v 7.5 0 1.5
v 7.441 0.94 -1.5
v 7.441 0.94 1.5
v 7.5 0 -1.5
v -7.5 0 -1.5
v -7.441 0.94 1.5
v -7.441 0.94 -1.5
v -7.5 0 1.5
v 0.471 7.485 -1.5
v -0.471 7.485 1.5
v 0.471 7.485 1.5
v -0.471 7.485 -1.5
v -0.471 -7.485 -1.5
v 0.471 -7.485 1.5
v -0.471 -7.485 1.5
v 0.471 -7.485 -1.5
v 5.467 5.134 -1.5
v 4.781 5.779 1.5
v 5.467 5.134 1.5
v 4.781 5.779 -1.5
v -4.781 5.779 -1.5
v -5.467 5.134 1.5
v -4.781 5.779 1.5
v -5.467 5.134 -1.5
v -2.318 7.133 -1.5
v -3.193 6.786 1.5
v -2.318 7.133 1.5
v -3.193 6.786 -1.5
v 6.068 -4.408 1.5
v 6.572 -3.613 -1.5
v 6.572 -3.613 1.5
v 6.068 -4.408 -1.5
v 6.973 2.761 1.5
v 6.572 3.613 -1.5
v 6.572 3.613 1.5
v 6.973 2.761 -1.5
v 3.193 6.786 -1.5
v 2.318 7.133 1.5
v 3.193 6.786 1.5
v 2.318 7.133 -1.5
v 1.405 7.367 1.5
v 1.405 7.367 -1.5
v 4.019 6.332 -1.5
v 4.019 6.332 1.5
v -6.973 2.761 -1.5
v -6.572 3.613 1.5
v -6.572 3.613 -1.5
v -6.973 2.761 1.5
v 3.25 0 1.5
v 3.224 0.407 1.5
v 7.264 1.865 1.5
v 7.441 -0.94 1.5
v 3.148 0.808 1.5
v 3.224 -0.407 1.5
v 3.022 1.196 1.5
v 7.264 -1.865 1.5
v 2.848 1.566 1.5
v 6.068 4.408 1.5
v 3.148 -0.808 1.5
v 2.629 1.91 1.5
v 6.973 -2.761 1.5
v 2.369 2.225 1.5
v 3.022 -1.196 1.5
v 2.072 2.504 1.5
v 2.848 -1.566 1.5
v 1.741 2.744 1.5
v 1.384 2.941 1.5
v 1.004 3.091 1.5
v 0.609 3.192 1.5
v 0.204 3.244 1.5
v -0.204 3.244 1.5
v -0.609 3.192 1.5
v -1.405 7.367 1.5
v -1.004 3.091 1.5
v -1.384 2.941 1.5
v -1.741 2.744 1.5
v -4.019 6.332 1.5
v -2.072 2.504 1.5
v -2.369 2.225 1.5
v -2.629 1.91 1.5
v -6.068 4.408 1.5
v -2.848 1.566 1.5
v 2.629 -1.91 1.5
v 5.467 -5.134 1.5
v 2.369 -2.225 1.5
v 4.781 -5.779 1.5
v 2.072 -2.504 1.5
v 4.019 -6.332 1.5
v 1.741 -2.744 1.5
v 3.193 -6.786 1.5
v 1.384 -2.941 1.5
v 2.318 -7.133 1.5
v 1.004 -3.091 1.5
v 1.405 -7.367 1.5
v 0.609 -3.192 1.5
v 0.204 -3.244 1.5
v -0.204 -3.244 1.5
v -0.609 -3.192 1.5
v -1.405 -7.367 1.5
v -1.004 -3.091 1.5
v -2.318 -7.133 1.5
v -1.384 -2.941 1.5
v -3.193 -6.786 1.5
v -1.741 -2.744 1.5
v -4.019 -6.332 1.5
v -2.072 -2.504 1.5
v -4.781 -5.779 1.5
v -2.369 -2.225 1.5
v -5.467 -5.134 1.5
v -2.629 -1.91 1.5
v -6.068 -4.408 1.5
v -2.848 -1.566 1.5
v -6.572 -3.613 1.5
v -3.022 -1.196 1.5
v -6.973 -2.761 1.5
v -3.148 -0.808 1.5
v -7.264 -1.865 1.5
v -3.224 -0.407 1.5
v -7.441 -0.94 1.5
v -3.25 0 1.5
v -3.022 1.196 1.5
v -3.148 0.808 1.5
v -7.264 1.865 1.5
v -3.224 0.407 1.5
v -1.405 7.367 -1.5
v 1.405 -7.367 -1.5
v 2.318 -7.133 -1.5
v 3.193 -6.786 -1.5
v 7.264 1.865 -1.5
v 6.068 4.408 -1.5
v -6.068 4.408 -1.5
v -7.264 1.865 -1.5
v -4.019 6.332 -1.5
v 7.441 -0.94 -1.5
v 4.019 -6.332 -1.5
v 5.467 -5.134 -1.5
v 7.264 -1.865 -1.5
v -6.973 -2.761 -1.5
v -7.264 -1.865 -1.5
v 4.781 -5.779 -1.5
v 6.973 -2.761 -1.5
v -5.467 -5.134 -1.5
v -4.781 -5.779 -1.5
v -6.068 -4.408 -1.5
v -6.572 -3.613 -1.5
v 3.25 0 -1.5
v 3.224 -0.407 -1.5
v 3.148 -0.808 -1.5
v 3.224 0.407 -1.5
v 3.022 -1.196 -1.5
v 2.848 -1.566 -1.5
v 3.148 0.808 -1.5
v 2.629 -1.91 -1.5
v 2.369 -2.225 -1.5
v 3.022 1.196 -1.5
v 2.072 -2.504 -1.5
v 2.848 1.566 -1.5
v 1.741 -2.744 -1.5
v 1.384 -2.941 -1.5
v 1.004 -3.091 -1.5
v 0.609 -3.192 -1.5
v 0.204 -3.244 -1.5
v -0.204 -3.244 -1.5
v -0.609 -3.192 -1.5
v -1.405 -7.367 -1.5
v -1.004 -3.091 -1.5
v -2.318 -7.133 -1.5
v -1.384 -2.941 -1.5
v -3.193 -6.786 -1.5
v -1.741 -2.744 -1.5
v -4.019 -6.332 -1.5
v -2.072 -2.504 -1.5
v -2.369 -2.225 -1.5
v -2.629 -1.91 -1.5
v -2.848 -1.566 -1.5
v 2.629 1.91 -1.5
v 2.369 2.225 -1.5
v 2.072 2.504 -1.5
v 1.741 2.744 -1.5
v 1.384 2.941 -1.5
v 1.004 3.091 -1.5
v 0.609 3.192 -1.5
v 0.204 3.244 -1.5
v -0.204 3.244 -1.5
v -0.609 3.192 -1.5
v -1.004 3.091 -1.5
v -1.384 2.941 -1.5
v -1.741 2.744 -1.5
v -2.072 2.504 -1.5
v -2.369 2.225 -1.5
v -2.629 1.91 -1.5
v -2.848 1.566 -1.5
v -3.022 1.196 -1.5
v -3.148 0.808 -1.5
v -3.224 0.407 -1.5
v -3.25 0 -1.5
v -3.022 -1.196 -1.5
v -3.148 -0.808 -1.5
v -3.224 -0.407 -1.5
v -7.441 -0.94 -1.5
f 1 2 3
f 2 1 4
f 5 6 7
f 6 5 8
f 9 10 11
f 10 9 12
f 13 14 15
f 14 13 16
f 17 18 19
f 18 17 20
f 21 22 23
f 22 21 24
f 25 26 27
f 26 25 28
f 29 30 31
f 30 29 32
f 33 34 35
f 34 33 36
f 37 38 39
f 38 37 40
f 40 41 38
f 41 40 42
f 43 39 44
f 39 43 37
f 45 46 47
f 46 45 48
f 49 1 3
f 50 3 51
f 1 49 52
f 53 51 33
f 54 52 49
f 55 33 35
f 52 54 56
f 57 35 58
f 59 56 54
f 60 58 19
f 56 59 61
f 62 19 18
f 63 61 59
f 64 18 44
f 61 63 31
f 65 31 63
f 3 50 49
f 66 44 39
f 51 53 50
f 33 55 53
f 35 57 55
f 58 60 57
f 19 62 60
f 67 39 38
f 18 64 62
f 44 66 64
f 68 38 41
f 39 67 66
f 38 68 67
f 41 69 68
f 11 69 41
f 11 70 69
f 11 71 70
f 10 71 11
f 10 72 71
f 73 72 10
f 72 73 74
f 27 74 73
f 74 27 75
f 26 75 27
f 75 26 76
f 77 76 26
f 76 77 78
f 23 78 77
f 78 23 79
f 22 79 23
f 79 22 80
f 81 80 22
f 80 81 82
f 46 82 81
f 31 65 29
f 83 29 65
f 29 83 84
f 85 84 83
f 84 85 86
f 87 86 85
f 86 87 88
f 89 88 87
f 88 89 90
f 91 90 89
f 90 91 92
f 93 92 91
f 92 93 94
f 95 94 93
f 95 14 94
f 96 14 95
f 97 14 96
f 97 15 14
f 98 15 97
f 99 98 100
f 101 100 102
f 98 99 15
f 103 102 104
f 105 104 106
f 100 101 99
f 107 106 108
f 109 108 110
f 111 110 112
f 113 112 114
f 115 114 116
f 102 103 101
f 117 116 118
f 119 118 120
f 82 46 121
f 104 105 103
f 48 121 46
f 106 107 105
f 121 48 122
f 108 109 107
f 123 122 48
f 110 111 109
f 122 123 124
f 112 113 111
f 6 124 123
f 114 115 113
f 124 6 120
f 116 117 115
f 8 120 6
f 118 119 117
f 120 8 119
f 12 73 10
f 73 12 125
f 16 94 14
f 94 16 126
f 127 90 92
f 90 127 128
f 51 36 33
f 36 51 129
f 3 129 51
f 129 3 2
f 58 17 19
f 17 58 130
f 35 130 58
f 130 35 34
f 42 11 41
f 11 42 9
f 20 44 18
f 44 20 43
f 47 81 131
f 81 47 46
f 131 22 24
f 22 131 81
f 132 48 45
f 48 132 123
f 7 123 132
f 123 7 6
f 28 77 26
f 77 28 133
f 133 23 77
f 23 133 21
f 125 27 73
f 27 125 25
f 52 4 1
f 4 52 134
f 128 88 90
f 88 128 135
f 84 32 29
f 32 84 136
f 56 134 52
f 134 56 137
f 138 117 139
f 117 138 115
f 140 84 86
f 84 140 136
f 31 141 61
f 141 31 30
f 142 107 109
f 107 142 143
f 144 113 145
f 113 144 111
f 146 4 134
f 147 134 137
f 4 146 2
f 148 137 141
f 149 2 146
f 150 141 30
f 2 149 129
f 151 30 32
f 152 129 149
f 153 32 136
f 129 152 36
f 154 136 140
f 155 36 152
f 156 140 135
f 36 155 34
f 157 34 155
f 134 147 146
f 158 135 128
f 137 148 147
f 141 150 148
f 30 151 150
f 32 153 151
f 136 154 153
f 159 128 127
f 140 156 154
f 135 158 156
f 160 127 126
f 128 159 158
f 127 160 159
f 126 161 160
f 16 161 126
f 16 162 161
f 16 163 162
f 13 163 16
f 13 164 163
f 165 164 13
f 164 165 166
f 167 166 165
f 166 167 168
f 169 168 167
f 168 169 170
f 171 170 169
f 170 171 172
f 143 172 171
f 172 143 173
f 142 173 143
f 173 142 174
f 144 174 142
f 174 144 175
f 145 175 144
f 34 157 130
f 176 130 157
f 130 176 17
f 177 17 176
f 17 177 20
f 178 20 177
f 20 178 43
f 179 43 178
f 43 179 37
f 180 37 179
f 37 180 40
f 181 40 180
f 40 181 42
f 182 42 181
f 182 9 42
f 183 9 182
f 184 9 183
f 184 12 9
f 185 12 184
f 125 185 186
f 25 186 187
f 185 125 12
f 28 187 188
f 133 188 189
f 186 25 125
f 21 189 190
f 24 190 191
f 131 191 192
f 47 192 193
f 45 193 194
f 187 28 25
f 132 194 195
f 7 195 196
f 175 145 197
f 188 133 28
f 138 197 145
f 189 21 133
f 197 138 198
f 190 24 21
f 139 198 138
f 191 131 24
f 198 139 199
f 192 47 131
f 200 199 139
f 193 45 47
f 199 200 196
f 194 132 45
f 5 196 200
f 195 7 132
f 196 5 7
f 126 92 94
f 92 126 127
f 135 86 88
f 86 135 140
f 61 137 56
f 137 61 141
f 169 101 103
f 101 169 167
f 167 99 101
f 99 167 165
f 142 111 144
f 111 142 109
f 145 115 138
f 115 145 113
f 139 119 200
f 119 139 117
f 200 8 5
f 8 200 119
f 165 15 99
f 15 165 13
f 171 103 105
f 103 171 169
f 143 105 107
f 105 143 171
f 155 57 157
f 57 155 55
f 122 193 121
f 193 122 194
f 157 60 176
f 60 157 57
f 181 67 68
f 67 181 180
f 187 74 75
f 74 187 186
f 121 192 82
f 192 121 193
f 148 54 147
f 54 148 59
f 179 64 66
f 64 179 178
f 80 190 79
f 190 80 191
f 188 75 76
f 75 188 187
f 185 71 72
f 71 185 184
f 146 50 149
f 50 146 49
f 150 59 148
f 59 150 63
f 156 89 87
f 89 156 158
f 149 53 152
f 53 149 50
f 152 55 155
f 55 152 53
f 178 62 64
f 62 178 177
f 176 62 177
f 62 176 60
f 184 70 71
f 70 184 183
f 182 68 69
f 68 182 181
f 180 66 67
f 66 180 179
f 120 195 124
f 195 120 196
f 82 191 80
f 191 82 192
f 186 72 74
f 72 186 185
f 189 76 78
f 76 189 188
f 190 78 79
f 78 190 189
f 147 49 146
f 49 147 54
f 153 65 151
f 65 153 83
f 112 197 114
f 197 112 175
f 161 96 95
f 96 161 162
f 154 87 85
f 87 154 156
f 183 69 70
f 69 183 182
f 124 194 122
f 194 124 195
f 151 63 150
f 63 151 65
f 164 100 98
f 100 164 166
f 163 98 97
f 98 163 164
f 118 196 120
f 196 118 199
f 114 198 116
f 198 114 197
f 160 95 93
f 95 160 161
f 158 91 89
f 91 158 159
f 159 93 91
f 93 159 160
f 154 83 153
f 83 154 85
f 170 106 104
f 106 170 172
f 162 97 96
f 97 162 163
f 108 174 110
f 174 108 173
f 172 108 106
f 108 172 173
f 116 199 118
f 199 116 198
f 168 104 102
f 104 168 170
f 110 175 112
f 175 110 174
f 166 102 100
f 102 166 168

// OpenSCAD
$fn = 50;


difference() {
	union() {
		translate(v = [0, 0, -1.5000000000]) {
			cylinder(h = 3, r = 7.5000000000);
		}
	}
	union() {
		translate(v = [0, 0, -100.0000000000]) {
			cylinder(h = 200, r = 3.2500000000);
		}
	}
}
